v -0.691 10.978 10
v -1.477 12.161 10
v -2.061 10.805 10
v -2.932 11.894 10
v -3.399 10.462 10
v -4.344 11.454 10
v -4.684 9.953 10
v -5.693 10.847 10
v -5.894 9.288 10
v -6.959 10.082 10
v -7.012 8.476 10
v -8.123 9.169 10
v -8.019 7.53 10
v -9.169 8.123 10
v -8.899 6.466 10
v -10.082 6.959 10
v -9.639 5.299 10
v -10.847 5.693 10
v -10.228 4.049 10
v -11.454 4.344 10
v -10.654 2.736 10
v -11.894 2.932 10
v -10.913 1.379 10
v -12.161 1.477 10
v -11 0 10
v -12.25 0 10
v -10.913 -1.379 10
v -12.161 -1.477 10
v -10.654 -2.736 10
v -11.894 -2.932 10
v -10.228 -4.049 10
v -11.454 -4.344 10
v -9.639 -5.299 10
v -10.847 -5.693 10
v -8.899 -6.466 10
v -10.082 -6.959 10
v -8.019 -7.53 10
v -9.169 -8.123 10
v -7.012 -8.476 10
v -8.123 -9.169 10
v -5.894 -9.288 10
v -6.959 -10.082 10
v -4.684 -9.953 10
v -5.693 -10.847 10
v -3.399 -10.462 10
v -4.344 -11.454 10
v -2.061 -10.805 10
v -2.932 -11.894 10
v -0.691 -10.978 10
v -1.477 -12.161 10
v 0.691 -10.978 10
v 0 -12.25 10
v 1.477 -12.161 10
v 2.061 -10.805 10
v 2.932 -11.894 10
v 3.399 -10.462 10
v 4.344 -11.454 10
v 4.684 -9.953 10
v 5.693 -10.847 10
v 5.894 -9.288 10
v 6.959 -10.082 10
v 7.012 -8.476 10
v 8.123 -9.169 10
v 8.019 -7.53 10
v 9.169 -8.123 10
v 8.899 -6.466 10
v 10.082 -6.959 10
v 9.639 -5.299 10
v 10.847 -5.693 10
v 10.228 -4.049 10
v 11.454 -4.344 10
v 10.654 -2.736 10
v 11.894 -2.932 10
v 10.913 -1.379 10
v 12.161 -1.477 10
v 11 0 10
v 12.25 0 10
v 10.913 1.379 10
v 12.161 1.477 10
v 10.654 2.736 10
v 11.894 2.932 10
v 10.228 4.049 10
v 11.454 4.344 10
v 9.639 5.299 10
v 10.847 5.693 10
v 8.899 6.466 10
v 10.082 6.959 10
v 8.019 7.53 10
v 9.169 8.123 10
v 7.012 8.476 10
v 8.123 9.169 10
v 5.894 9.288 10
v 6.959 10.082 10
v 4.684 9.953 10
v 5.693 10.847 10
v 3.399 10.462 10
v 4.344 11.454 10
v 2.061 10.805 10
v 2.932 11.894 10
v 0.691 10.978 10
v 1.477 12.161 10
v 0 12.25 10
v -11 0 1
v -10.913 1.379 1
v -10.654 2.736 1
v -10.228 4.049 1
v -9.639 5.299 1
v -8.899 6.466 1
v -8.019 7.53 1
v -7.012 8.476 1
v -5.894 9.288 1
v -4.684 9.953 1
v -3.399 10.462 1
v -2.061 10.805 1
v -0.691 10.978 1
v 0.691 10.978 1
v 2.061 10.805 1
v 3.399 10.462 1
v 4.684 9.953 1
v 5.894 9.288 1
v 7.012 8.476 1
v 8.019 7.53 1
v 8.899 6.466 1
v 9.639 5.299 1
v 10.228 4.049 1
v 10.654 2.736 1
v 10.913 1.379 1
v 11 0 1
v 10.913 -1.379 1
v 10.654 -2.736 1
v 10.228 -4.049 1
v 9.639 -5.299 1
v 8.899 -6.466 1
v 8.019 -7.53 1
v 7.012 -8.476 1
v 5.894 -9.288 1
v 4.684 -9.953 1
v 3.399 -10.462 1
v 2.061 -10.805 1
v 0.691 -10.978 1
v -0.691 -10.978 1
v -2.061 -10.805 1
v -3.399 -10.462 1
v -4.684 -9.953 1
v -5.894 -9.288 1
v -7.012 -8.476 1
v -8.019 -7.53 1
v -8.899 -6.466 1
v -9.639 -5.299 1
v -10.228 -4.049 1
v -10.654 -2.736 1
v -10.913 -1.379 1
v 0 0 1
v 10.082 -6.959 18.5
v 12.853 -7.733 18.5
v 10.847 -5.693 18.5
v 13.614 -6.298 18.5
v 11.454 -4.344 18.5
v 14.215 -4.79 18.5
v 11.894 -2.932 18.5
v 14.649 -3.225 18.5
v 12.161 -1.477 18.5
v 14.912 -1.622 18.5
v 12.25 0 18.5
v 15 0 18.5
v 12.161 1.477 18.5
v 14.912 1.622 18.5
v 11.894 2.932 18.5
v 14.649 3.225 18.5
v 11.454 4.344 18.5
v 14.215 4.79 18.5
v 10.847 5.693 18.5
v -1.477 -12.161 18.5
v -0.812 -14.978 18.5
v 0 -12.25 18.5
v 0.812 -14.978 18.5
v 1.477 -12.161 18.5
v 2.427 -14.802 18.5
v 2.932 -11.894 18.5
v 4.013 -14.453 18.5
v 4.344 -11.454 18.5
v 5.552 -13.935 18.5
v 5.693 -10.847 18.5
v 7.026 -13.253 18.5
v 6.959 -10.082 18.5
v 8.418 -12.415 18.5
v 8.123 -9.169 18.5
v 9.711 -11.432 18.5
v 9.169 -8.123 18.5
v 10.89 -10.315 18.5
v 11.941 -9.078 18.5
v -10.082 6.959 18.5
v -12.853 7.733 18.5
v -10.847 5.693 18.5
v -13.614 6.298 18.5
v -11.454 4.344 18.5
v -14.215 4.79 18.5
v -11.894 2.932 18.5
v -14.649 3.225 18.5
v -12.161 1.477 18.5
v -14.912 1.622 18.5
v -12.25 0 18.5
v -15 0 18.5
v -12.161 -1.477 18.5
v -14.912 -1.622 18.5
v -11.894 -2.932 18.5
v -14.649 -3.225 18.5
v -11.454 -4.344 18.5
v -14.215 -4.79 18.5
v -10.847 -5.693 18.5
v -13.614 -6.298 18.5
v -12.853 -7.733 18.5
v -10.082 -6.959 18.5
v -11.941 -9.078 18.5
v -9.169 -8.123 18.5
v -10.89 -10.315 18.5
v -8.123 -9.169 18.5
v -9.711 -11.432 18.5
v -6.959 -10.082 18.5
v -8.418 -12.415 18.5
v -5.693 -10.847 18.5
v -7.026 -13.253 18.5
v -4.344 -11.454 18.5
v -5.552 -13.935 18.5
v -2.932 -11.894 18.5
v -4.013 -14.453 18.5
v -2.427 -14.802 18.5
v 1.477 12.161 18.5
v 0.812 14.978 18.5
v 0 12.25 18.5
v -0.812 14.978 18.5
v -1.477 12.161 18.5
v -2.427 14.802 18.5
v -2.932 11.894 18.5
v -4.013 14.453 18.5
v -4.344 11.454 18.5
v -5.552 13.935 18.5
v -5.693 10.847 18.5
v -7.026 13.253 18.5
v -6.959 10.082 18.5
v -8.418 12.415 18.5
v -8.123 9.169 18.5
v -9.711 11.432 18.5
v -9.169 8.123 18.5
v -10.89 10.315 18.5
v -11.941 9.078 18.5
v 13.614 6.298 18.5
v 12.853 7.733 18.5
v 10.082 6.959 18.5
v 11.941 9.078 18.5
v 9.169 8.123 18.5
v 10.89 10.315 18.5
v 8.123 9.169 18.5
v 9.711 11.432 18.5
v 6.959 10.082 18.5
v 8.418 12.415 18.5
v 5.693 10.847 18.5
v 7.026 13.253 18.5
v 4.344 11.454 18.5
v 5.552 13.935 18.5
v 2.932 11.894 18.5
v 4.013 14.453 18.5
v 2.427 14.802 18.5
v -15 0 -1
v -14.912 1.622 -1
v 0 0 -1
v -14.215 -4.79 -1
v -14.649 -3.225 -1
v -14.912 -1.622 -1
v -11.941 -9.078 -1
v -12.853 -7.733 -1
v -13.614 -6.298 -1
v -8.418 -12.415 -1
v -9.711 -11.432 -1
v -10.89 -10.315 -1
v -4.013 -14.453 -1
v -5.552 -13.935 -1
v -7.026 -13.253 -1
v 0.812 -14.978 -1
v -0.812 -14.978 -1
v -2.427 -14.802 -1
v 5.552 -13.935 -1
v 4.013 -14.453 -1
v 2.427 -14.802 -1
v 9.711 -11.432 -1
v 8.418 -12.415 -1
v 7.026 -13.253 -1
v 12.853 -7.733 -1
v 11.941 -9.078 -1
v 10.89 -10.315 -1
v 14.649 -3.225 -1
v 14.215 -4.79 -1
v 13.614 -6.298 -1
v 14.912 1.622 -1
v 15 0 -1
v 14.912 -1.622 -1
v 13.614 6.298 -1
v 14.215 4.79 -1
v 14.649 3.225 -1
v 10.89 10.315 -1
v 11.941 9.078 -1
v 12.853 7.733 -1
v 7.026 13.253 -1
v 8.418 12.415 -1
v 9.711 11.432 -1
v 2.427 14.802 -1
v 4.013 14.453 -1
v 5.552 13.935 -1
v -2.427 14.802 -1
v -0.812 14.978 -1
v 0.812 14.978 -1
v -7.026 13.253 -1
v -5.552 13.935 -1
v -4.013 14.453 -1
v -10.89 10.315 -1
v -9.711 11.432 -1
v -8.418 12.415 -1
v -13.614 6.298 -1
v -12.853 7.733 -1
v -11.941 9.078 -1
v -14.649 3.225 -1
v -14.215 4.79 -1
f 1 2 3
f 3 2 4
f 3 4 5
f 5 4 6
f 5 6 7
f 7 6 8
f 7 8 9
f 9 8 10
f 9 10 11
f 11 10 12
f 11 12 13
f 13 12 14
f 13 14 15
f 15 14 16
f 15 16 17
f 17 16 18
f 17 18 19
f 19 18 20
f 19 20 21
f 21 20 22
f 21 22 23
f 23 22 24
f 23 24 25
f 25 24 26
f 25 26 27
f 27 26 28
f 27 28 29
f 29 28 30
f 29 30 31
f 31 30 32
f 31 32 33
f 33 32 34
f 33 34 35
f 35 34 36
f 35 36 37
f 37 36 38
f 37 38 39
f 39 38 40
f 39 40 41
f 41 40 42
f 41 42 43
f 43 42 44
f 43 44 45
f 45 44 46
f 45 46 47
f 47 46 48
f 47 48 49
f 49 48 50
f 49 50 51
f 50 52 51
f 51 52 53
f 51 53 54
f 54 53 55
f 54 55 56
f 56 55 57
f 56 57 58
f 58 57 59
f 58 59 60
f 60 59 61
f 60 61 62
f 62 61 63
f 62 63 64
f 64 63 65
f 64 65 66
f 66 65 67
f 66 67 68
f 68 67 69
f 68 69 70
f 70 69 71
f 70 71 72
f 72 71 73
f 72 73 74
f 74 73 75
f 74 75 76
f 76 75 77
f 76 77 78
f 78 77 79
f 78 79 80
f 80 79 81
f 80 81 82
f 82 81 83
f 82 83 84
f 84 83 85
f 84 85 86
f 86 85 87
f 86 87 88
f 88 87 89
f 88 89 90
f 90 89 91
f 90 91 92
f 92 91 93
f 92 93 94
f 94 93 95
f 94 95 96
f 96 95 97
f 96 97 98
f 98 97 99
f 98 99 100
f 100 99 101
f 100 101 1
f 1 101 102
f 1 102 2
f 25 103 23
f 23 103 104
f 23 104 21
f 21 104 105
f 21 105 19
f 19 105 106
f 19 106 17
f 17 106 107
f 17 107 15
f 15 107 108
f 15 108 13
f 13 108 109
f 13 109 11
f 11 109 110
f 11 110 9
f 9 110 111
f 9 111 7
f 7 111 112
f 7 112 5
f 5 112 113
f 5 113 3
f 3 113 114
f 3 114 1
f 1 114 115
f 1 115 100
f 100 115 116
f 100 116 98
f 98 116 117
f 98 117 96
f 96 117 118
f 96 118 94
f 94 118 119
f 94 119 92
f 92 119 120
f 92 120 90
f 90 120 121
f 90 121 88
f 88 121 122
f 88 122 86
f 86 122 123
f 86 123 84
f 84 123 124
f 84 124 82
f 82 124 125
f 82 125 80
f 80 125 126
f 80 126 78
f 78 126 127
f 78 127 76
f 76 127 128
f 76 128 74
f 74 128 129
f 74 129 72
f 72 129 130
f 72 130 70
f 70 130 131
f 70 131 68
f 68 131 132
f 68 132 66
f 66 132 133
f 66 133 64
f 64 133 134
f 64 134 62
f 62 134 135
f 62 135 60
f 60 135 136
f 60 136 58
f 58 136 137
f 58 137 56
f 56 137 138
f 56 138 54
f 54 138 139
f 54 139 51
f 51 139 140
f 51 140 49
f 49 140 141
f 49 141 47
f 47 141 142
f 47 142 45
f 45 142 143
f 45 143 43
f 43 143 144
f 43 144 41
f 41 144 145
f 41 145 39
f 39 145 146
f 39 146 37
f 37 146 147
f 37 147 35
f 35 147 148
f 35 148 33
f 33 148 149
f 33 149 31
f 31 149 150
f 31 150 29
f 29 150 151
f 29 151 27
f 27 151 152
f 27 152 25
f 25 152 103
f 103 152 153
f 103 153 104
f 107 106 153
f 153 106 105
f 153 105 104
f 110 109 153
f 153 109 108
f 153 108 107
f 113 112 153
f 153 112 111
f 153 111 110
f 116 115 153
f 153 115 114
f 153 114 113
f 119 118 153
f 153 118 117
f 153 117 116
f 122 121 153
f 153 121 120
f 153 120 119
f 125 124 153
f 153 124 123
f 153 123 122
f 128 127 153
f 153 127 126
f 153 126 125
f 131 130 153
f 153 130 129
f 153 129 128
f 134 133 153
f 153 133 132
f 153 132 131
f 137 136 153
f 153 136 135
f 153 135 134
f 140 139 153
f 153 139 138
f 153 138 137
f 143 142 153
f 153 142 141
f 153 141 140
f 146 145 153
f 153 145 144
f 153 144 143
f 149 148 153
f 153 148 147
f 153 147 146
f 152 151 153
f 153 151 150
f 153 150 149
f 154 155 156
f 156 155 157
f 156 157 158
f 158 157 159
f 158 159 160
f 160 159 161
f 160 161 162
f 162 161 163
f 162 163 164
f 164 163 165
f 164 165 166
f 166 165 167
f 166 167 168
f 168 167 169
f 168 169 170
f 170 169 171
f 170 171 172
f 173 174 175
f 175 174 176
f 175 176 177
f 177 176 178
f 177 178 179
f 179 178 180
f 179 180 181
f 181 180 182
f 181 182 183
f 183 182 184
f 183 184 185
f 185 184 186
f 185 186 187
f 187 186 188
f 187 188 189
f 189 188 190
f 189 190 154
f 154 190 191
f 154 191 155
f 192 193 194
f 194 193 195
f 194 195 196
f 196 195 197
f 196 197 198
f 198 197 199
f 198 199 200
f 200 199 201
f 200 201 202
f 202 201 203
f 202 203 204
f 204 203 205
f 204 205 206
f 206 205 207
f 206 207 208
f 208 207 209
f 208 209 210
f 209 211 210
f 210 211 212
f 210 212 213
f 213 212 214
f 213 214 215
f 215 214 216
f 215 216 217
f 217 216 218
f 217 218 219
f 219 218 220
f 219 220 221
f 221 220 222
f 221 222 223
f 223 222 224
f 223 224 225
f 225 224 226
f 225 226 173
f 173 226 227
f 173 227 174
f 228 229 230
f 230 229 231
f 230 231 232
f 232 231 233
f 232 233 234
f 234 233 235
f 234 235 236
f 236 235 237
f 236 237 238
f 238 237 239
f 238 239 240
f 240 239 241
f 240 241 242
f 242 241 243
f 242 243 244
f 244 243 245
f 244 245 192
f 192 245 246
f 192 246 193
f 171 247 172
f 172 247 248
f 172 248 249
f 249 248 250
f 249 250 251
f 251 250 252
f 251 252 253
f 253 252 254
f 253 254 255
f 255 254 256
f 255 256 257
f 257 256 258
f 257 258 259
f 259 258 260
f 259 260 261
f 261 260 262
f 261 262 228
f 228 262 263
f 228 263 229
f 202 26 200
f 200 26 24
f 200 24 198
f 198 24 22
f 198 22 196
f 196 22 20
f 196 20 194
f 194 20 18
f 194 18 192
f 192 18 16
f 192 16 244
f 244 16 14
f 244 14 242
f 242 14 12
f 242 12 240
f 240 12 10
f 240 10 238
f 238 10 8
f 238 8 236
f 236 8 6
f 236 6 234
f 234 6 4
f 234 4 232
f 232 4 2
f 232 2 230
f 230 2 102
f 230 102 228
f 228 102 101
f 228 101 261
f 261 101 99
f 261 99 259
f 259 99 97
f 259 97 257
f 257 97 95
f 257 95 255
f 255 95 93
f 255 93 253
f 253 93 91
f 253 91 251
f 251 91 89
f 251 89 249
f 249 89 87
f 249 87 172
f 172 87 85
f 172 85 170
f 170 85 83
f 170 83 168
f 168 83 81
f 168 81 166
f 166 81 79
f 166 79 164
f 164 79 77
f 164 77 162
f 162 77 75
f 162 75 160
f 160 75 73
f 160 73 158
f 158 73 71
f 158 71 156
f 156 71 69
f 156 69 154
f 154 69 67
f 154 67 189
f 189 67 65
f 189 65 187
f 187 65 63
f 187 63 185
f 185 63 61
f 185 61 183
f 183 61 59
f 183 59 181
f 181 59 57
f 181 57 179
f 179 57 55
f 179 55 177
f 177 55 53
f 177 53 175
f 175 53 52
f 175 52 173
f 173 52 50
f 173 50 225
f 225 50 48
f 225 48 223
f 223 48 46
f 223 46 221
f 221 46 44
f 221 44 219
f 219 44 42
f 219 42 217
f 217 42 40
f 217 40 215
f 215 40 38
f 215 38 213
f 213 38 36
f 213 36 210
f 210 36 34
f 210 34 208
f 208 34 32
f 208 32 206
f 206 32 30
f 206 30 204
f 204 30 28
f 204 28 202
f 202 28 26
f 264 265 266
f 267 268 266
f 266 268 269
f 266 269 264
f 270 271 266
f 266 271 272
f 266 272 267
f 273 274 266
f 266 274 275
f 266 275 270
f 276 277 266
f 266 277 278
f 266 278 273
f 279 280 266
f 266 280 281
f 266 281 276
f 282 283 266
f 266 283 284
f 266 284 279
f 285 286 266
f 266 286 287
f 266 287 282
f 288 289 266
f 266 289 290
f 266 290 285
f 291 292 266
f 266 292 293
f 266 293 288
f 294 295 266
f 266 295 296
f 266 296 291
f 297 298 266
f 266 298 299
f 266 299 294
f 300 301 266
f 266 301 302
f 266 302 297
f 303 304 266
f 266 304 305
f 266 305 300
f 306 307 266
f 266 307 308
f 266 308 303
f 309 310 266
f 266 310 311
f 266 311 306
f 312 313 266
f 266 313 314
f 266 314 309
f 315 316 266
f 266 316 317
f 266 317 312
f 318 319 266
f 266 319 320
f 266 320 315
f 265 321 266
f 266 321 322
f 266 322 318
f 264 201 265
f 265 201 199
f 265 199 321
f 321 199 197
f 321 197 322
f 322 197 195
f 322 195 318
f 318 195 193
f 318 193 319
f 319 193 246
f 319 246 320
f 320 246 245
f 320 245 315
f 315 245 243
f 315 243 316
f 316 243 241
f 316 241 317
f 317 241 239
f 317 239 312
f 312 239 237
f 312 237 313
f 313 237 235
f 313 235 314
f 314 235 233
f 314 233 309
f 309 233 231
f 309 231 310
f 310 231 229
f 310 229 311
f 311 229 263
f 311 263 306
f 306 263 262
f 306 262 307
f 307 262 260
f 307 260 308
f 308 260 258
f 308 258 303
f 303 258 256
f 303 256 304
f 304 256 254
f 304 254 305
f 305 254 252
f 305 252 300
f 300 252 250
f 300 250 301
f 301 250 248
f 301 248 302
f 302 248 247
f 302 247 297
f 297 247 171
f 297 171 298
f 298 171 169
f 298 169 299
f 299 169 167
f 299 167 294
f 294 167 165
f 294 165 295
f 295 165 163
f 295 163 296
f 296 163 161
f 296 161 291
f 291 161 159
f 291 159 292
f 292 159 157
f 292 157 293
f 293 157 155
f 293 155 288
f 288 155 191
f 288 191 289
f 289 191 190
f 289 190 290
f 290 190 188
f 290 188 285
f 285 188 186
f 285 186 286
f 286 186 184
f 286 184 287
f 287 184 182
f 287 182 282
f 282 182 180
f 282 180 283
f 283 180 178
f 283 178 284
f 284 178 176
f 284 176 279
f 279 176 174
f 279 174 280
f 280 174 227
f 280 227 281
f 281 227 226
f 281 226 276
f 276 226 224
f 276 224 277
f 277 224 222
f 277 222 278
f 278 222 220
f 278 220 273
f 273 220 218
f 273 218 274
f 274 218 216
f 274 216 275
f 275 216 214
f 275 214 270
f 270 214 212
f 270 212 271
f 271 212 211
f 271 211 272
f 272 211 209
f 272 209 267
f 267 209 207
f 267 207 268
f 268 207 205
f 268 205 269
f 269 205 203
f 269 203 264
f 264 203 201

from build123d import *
from build123d.topology import SkipClean

# Parameters (mm, degrees)
CROQUIS1_R              = 15
CROQUIS1_R_2            = 11
SALIENTE_EXTRUIR1_DEPTH = 10
CROQUIS2_R              = 15
SALIENTE_EXTRUIR2_DEPTH = 1
CROQUIS3_R              = 15
CROQUIS3_R_2            = 12.25
SALIENTE_EXTRUIR3_DEPTH = 8.5


with BuildPart() as part:
    # Croquis1 → Saliente-Extruir1 (new body)
    with BuildSketch(Plane.XY):
        Circle(CROQUIS1_R)
        Circle(CROQUIS1_R_2, mode=Mode.SUBTRACT)
    extrude(amount=SALIENTE_EXTRUIR1_DEPTH)

    # Croquis2 → Saliente-Extruir2 (add, symmetric)
    with SkipClean():  # the faces are left unmerged after this step: merging them gives an invalid solid
        with BuildSketch(Plane(origin=(0, 0, 0), x_dir=(-1, 0, 0), z_dir=(0, 0, -1))):
            Circle(CROQUIS2_R)
        extrude(amount=SALIENTE_EXTRUIR2_DEPTH, both=True)

    # Croquis3 → Saliente-Extruir3 (add)
    with SkipClean():  # the faces are left unmerged after this step: merging them gives an invalid solid
        with BuildSketch(Plane.XY.offset(10)):
            with Locations(Location((0, 0, 0), (0, 0, 180))):
                Circle(CROQUIS3_R)
            Circle(CROQUIS3_R_2, mode=Mode.SUBTRACT)
        extrude(amount=SALIENTE_EXTRUIR3_DEPTH)


solid = part.part
